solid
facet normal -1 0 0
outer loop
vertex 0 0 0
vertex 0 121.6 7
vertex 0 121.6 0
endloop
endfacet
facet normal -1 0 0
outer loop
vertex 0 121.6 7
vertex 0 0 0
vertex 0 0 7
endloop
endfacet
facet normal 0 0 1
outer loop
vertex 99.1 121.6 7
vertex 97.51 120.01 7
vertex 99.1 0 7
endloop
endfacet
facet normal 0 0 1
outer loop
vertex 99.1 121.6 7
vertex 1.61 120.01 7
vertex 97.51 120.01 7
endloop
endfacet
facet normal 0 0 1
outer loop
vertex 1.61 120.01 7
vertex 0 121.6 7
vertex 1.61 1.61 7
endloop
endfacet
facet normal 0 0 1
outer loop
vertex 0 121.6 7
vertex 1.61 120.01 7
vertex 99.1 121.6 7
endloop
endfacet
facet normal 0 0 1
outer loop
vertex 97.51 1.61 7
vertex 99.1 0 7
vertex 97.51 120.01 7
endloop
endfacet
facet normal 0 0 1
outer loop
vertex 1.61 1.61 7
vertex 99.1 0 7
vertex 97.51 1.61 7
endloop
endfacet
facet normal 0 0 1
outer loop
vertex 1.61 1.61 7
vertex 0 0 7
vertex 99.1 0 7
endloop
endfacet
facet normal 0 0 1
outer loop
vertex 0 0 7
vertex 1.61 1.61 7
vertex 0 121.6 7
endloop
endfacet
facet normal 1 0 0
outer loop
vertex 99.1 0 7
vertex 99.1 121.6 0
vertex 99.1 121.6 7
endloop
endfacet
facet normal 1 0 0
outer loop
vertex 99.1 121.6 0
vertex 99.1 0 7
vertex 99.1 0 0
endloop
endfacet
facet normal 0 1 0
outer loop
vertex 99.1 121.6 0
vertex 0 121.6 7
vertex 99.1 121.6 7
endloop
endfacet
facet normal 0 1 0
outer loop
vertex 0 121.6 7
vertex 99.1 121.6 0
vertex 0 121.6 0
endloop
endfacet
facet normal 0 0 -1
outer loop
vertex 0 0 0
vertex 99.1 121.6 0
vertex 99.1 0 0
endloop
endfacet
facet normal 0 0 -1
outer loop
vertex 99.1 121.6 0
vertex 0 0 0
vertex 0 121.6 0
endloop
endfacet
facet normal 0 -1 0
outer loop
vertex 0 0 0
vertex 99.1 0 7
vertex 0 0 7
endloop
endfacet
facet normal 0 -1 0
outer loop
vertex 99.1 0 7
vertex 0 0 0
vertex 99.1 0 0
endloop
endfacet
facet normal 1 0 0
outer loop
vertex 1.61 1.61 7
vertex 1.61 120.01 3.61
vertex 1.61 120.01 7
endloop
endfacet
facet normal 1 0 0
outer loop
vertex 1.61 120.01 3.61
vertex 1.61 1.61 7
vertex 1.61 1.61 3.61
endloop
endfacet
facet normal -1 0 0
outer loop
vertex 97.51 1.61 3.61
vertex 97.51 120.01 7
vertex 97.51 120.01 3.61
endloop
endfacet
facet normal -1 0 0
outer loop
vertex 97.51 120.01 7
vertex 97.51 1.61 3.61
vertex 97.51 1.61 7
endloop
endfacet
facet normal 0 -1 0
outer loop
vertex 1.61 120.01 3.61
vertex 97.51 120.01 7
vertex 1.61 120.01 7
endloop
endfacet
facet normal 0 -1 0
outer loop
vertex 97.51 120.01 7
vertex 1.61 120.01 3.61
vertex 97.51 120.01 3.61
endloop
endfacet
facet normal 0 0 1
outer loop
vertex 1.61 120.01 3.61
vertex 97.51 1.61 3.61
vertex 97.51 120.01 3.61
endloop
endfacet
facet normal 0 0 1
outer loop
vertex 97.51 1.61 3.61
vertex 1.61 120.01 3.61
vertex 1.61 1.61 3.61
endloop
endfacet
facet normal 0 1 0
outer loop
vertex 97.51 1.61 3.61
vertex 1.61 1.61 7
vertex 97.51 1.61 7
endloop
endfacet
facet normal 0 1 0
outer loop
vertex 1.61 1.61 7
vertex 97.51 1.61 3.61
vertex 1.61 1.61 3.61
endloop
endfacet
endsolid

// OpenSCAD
//units are in mm
$fn=20;

// Epsilon value
e = 0.01;

// Wall thickness
wall = .8;

// Outer border width
border = 8;

// mm clearance alongside each button
clearance = 6;

// Button size constants
a_diameter = 19 + clearance;
b_diameter = 12.5 + clearance;
y_length = 17 + clearance;
y_width = 11 + clearance;
x_length = 17 + clearance;
x_width = 11 + clearance;
start_diameter = 8 + clearance;
button_height = 18;

// How many sets of buttons
sets = 4;

difference() {
    // Bounding box
    cube([2*border + a_diameter + b_diameter + x_width + y_width + 7*wall, 2*border + 4*a_diameter + 7*wall, 7]);

    // Bottom indents
    translate([2*wall + e, 2*wall + e, 2 + 2*wall + e])
        cube([2*border + a_diameter + b_diameter + 2*x_width + 3*wall, 2*border + 4*a_diameter + 3*wall, button_height]);

}
